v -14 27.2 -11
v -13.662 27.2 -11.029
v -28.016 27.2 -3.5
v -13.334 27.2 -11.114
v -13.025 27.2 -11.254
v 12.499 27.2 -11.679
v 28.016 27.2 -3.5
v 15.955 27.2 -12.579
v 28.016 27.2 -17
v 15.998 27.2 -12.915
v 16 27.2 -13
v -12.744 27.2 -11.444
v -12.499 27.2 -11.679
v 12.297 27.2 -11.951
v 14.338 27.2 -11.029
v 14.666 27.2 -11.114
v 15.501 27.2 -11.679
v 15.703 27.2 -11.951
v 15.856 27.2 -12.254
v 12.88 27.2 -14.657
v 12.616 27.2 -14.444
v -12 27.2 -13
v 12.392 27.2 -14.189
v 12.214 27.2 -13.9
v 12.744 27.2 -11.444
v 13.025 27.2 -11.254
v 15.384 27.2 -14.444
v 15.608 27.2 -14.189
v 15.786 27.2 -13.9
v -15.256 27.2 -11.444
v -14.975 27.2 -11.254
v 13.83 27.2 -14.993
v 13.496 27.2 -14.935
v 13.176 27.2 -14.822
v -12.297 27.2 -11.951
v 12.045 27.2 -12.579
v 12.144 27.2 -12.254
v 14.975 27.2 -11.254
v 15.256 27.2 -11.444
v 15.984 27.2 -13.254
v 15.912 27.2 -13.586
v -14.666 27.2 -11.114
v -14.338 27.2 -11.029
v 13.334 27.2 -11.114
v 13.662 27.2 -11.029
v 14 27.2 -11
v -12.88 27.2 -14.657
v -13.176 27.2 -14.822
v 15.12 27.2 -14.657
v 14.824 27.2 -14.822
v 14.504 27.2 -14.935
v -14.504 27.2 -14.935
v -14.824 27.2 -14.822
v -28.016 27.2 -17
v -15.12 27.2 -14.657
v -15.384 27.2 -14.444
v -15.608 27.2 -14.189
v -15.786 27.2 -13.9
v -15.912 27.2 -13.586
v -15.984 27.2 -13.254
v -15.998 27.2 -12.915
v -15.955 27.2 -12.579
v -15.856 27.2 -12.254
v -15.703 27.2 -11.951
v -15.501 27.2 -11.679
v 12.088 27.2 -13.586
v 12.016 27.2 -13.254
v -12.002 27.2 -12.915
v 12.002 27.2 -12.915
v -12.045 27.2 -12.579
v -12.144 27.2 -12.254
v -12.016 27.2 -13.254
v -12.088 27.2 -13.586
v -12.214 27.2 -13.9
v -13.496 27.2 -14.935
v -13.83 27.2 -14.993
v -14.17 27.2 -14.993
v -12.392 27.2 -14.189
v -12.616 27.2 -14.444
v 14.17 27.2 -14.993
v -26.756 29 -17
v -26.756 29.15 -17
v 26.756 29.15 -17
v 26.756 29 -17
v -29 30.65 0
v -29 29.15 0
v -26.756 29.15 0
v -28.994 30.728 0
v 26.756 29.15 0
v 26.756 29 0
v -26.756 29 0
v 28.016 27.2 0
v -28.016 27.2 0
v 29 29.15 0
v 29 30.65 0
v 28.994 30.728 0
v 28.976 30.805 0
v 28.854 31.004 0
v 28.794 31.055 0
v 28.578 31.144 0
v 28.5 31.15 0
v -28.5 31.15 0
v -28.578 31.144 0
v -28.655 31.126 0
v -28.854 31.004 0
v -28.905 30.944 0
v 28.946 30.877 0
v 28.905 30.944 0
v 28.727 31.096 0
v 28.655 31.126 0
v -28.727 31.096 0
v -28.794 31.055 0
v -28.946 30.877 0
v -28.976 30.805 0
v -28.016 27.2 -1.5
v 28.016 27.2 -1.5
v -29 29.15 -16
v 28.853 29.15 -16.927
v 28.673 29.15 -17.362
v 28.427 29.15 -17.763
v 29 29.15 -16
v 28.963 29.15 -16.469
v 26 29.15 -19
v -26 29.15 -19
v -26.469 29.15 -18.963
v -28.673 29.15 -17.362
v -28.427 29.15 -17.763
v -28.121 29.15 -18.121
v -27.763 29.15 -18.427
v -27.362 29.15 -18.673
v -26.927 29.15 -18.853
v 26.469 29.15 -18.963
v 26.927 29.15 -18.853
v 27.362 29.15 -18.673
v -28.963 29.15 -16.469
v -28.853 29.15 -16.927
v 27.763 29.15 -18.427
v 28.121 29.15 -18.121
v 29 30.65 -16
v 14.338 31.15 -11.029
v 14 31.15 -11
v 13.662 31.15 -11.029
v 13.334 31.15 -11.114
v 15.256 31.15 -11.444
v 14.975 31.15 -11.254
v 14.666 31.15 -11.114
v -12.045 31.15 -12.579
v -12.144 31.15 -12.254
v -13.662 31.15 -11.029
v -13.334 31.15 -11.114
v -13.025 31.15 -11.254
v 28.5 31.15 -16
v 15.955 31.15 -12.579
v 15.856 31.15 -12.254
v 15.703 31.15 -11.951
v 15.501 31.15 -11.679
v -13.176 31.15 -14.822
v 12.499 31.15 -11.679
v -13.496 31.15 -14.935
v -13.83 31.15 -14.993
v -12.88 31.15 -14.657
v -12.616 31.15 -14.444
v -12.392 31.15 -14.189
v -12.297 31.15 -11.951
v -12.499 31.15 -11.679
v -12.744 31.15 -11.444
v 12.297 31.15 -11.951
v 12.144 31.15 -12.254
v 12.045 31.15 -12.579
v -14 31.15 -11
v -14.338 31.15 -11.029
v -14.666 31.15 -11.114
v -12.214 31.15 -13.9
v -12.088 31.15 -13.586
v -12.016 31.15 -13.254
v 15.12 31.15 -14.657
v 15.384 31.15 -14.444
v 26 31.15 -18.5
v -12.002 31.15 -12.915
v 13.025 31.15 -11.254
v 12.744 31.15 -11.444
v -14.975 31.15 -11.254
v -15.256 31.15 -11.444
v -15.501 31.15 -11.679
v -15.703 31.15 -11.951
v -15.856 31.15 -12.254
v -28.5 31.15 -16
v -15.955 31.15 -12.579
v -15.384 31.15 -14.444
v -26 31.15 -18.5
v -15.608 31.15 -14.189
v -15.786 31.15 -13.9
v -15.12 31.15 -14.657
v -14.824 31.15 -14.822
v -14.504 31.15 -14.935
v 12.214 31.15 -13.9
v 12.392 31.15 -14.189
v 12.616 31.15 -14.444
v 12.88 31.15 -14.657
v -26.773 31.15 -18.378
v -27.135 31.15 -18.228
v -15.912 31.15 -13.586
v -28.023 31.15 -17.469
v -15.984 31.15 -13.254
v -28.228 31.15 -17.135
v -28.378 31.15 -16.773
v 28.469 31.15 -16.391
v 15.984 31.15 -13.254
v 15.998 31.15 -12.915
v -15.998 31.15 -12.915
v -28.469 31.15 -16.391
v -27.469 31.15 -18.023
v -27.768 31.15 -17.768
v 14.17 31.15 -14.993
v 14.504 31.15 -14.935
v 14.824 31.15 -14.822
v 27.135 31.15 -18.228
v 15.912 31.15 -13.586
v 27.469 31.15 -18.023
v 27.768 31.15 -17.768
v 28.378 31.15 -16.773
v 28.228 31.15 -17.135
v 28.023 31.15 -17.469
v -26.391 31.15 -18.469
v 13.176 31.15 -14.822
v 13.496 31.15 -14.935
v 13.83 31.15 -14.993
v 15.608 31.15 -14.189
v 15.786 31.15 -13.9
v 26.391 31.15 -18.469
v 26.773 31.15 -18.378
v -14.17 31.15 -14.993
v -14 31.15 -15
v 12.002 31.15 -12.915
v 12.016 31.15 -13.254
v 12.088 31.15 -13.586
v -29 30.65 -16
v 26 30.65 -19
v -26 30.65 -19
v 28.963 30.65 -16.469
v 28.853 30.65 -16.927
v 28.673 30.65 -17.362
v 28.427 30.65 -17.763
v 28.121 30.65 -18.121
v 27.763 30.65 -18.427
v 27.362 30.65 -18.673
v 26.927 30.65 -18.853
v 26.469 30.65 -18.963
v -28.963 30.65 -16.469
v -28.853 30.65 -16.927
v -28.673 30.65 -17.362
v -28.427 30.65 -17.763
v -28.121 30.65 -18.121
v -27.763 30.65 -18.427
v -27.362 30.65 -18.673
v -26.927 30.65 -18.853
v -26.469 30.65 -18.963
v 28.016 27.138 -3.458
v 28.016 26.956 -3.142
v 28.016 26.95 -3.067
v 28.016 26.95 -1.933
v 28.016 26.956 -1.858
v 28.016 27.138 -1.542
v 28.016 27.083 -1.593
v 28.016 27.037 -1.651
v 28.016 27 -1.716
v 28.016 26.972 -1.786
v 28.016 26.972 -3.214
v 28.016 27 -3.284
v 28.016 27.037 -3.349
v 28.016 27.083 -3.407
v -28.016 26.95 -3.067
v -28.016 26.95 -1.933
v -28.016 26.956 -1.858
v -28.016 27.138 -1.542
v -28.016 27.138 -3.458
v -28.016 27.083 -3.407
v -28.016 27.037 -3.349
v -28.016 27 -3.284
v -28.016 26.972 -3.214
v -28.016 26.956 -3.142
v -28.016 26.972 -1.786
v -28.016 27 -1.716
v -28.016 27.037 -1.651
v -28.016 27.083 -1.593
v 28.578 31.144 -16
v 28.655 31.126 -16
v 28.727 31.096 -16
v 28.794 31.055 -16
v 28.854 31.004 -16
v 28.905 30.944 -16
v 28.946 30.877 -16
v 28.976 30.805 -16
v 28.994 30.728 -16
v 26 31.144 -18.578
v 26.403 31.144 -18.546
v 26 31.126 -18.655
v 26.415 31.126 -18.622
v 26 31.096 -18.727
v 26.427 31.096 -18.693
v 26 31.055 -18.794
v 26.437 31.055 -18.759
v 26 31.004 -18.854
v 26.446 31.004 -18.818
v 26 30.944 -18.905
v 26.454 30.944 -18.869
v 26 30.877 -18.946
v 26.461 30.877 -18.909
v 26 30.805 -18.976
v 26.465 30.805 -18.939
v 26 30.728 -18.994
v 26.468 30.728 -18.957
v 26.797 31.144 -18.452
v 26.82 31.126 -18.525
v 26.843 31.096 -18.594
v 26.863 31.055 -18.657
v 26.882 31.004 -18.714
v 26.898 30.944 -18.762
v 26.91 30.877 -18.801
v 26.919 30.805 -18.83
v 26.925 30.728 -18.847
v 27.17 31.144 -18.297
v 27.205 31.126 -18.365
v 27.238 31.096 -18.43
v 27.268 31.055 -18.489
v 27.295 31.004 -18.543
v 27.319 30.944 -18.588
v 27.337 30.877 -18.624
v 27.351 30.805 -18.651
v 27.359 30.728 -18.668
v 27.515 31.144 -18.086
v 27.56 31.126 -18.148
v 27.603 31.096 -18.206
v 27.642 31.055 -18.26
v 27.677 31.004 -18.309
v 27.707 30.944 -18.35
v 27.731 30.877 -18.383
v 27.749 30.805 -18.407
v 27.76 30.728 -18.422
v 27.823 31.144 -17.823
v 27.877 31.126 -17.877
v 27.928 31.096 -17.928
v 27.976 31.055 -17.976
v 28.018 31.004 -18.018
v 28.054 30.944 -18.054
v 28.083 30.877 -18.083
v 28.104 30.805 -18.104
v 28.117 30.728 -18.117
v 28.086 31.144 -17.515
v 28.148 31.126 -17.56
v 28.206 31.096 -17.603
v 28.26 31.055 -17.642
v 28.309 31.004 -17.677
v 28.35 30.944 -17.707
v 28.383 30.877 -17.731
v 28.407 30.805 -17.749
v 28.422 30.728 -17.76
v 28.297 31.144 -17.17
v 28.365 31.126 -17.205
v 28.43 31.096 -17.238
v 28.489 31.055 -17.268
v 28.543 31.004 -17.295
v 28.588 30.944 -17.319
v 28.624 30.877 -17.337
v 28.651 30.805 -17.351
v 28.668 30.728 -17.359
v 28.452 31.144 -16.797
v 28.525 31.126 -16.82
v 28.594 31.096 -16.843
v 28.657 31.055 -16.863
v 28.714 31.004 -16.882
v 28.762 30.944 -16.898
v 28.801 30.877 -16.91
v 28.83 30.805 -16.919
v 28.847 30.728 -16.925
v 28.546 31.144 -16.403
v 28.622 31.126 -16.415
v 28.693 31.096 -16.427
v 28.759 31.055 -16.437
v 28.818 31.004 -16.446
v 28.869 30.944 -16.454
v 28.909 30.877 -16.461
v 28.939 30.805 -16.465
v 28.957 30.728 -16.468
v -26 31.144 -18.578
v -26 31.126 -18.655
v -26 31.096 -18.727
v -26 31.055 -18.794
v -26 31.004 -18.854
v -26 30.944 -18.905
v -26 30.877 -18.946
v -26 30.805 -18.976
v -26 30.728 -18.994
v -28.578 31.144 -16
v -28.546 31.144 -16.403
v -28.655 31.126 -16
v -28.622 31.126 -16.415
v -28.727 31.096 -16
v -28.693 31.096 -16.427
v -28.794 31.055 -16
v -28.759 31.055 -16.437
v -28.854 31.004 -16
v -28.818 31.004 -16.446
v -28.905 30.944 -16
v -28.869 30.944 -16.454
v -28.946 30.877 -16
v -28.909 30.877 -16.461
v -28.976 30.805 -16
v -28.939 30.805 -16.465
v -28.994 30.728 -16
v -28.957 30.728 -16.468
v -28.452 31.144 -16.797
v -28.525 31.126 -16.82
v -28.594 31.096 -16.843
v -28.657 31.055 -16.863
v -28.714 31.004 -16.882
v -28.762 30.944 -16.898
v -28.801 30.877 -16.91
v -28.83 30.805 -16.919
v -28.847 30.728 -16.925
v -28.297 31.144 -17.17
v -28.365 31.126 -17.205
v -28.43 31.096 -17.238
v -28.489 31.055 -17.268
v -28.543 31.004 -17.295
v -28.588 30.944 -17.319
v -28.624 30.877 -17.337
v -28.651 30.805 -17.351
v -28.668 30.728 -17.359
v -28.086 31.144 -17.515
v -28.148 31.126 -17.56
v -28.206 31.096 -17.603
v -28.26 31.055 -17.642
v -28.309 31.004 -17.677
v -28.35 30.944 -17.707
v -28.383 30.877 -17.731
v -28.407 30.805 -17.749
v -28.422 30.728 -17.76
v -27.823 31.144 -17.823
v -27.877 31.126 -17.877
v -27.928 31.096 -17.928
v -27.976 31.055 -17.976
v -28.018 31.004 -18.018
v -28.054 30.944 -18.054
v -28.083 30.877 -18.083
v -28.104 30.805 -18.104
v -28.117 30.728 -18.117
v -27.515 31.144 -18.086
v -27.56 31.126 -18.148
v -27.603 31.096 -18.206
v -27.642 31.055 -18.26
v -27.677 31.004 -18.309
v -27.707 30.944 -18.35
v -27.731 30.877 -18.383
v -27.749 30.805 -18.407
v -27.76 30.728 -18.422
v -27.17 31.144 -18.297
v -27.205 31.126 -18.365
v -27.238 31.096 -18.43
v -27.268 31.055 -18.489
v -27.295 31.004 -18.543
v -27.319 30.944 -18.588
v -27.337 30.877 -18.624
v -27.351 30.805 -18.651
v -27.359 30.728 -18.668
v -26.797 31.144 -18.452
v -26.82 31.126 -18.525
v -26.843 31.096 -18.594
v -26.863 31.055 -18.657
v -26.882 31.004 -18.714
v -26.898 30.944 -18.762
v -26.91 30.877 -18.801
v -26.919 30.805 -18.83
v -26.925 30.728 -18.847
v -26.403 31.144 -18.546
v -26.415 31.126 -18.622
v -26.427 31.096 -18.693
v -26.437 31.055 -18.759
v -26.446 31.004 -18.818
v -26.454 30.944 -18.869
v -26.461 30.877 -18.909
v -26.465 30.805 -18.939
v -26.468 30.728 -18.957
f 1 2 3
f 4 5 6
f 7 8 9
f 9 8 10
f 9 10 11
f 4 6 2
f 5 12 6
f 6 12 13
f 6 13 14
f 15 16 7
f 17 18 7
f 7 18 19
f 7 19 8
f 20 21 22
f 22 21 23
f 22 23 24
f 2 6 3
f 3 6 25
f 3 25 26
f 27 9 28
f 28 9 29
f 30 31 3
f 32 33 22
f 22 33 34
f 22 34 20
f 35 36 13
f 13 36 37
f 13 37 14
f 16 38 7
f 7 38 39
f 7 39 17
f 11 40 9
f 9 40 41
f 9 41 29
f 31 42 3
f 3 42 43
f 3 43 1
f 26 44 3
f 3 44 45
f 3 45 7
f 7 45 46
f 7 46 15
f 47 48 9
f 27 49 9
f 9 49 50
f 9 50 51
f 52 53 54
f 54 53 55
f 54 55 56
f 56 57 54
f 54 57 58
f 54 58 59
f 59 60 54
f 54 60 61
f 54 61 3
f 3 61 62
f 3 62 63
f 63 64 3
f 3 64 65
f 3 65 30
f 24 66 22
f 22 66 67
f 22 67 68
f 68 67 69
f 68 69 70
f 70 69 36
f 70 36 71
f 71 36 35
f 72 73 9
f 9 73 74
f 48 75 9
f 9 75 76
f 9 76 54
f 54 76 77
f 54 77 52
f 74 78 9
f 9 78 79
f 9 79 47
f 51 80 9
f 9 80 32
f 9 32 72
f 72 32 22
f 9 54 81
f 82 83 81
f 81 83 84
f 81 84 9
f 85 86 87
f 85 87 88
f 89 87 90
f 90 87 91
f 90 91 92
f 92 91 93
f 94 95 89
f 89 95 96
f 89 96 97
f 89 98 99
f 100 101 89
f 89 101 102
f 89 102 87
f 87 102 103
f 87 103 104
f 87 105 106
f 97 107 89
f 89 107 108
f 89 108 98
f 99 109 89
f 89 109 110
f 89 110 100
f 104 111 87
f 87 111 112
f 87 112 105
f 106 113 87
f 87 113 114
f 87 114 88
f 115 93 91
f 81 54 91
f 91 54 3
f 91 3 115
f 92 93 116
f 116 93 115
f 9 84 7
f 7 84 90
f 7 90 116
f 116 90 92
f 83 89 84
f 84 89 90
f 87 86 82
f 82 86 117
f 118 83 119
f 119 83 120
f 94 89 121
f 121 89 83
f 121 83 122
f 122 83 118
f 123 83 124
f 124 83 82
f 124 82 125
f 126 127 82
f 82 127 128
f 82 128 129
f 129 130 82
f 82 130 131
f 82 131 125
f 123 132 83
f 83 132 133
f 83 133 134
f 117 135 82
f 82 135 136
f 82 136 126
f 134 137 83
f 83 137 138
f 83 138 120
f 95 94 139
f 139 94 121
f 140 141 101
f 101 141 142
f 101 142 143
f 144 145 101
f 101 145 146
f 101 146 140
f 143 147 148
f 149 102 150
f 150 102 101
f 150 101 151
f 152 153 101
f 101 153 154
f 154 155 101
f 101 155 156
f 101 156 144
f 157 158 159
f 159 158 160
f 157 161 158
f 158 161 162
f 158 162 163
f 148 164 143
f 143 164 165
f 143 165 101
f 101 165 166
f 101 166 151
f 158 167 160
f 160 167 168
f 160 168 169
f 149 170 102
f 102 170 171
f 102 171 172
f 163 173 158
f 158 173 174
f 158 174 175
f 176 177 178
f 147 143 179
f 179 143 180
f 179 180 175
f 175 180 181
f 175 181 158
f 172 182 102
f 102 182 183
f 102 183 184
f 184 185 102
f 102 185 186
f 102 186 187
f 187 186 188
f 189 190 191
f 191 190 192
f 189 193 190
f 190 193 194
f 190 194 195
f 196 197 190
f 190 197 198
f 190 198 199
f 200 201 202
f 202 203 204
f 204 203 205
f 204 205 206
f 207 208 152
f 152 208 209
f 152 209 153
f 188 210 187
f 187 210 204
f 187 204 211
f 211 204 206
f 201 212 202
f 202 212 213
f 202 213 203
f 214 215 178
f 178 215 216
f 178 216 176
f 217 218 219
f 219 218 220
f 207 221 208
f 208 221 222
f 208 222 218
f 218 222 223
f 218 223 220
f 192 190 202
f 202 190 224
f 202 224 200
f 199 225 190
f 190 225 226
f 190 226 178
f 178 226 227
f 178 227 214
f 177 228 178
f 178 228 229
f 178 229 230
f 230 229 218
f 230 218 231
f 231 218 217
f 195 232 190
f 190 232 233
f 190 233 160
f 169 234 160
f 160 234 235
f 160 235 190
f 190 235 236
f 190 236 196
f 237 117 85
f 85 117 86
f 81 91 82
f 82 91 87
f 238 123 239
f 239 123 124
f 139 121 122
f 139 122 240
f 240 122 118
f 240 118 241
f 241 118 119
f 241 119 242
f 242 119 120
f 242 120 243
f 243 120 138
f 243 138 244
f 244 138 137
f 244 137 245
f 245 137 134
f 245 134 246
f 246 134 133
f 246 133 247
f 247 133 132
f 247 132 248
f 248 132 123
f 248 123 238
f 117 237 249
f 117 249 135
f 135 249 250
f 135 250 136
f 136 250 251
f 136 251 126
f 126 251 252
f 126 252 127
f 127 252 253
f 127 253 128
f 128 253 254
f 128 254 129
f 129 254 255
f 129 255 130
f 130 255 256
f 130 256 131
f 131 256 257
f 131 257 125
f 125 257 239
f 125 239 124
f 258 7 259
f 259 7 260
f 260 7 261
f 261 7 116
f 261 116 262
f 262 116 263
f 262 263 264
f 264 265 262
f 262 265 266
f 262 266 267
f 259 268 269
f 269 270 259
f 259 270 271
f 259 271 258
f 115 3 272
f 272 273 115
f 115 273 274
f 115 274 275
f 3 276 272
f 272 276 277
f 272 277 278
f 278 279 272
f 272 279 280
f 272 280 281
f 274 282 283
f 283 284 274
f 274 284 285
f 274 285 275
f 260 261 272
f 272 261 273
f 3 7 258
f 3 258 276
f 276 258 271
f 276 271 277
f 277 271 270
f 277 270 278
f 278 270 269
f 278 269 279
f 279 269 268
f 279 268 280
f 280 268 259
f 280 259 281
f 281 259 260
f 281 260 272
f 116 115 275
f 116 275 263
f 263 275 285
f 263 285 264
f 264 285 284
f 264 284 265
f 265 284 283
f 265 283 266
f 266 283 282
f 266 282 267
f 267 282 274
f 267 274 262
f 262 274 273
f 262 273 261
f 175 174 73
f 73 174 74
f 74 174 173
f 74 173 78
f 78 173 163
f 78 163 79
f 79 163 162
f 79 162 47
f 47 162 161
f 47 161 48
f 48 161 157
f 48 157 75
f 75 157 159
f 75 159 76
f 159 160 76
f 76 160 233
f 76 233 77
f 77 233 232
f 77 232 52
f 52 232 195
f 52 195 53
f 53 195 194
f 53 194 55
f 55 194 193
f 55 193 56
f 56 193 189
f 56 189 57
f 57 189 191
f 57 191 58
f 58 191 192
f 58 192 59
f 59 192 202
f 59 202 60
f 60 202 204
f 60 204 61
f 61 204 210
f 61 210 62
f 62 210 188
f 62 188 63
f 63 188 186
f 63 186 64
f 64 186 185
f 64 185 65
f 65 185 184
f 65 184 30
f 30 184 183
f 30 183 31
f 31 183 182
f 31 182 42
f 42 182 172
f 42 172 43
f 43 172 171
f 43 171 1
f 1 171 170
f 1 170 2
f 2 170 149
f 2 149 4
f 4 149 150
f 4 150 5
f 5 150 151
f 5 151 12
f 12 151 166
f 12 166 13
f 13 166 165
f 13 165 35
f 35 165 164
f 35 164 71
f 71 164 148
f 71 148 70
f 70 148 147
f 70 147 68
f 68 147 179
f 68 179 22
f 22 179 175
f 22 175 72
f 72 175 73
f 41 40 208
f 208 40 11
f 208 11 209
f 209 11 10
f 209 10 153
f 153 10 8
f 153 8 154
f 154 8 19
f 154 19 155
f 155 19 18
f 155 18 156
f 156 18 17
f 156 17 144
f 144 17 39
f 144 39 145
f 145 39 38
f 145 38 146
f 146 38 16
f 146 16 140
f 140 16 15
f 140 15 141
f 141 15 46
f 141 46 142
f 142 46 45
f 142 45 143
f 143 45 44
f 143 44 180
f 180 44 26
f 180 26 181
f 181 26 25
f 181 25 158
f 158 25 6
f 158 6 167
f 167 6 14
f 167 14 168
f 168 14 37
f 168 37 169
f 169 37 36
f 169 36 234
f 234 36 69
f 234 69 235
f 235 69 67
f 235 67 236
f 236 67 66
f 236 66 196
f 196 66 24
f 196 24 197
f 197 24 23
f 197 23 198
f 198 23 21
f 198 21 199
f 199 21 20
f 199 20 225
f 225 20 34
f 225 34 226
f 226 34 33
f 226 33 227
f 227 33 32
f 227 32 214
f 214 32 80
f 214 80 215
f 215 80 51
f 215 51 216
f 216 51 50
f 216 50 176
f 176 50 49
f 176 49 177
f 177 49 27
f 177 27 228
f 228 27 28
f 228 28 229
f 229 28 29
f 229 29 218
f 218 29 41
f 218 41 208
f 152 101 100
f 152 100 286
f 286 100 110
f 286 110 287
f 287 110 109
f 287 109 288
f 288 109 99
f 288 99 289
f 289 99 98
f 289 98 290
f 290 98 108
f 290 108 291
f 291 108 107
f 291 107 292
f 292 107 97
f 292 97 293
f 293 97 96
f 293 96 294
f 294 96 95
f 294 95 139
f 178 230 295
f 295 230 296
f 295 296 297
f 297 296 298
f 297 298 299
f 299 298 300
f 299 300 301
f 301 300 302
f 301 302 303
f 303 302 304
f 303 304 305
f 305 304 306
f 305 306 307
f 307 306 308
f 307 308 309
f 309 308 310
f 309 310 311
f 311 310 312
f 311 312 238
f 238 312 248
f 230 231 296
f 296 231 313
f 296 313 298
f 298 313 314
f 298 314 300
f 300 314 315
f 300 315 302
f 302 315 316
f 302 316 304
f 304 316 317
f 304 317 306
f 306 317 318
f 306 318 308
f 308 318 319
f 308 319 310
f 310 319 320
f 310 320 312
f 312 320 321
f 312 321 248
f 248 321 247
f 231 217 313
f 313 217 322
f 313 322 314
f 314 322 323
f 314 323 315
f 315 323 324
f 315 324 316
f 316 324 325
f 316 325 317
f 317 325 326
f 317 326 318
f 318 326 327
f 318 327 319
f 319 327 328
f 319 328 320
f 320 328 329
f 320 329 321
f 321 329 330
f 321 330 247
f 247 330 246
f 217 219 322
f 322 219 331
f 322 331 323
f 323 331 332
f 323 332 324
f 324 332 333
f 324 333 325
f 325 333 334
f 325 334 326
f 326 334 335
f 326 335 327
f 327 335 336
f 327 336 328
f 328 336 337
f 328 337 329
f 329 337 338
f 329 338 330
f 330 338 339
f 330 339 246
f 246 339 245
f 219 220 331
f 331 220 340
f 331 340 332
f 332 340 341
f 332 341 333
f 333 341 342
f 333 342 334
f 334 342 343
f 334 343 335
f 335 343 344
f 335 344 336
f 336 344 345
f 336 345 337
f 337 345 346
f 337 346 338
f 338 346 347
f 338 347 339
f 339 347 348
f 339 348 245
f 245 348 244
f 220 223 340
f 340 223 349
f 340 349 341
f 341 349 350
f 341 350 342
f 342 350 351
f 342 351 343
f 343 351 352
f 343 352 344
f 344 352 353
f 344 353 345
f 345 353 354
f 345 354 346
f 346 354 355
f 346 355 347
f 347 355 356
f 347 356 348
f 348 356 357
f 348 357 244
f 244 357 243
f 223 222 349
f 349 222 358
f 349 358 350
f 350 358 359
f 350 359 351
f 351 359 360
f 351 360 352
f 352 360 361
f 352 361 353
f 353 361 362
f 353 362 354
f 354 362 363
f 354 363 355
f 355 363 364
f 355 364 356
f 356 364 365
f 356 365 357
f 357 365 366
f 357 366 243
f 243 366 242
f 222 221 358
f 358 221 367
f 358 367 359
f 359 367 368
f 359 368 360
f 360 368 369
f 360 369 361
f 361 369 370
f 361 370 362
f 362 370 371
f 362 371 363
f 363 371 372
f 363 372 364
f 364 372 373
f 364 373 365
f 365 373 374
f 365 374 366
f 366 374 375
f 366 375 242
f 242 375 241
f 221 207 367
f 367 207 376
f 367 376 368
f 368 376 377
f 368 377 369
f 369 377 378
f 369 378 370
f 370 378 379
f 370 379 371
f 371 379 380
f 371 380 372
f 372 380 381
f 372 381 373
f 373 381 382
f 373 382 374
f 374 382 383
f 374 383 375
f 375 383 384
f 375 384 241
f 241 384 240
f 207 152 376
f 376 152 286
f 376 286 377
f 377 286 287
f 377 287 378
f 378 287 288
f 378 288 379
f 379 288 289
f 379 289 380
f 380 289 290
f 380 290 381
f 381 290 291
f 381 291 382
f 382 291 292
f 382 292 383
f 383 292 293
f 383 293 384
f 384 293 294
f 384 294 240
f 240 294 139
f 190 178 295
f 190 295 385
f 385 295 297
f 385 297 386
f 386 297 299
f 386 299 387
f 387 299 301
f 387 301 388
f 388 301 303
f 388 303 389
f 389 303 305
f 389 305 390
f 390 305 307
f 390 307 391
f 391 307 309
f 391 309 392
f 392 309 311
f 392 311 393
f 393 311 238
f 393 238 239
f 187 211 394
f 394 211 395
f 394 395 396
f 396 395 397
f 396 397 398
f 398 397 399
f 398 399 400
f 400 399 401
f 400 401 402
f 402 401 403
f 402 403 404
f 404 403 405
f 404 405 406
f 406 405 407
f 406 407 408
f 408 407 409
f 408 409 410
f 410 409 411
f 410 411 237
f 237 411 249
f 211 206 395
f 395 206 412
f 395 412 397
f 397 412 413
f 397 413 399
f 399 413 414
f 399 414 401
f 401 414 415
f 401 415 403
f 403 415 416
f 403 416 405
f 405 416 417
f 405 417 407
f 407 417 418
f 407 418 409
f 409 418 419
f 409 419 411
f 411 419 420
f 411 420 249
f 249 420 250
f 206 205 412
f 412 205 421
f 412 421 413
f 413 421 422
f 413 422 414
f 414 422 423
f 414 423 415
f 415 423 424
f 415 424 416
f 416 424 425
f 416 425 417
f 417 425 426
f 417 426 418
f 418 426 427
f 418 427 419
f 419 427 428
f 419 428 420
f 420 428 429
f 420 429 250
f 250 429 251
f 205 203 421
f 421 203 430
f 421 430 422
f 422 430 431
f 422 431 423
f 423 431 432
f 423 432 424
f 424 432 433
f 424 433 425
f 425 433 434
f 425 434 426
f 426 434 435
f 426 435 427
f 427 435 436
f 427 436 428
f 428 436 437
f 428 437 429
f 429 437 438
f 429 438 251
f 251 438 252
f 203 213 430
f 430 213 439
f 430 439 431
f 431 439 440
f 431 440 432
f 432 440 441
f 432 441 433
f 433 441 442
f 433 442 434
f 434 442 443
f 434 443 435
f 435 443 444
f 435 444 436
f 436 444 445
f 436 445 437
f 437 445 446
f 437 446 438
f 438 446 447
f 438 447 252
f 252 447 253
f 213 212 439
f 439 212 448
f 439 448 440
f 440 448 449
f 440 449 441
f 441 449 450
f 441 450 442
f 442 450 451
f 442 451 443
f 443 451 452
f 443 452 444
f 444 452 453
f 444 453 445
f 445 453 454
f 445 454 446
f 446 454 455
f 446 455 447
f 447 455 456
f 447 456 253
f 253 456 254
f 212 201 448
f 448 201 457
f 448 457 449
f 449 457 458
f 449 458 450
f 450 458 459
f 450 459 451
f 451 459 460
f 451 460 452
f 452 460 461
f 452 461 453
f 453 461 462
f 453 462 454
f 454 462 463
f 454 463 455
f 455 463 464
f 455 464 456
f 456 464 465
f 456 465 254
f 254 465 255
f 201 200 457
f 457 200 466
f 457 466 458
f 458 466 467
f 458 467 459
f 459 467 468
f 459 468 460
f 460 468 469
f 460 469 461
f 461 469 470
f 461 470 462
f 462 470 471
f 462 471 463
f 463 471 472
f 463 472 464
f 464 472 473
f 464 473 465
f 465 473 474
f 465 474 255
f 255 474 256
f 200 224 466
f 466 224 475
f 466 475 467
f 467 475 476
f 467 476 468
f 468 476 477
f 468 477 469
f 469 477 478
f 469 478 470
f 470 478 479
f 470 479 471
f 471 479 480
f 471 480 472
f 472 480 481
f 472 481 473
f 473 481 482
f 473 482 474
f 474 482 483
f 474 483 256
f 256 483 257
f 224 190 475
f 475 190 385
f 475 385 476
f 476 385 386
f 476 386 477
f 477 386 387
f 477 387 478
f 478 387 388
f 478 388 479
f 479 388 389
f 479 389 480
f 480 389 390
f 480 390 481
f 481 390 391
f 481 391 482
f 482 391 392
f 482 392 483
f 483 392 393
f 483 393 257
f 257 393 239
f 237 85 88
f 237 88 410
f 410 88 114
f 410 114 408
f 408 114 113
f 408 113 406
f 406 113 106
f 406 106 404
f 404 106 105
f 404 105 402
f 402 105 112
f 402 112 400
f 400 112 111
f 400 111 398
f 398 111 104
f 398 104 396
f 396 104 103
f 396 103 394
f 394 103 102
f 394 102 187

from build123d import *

# Parameters (mm, degrees)
BOSS_EXTRUDE1_DEPTH = 17
SKETCH3_W           = 58
SKETCH3_H           = 2
BOSS_EXTRUDE2_DEPTH = 2
FILLET1_R           = 3
SKETCH4_W           = 56.032437302
SKETCH4_H           = 2
BOSS_EXTRUDE3_DEPTH = 0.25
FILLET2_R           = 0.5
CUT_EXTRUDE2_REACH  = 36.923
SKETCH7_R           = 2
FILLET3_R           = 0.5


with BuildPart() as part:
    # Sketch1 → Boss-Extrude1 (new body)
    with BuildSketch(Plane.XY):
        Polygon((-26.755845082, 29), (-28.016218651, 27.2), (28.016218651, 27.2), (26.755845082, 29), (26.755845082, 29.15), (29, 29.15), (29, 31.15), (-29, 31.15), (-29, 29.15), (-26.755845082, 29.15), align=None)
    extrude(amount=-BOSS_EXTRUDE1_DEPTH)

    # Sketch3 → Boss-Extrude2 (add)
    with BuildSketch(Plane(origin=(0, 0, -17), x_dir=(-1, 0, 0), z_dir=(0, 0, -1))):
        with Locations((0, 30.15)):
            Rectangle(SKETCH3_W, SKETCH3_H)
    extrude(amount=BOSS_EXTRUDE2_DEPTH)

    # Fillet1
    fillet1_edges = [part.edges().sort_by_distance(p)[0] for p in [
        (29, 30.15, -19),
        (-29, 30.15, -19),
    ]]
    fillet(fillet1_edges, radius=FILLET1_R)

    # Sketch4 → Boss-Extrude3 (add)
    with BuildSketch(Plane.XZ.offset(-27.2)):
        with Locations((0, -2.5)):
            Rectangle(SKETCH4_W, SKETCH4_H)
    extrude(amount=BOSS_EXTRUDE3_DEPTH)

    # Fillet2
    # the kernel refuses this fillet: 0.5 mm, written as the material it takes off along each edge
    with BuildSketch(Plane(origin=(-29.098750406, 26.95, -3.5), x_dir=(0, 1, 0), z_dir=(1, 0, 0)), Plane(origin=(29.098750406, 26.95, -1.5), x_dir=(0, 1, 0), z_dir=(-1, 0, 0))) as fillet2_piece_1:
        with BuildLine():
            CenterArc((0.5, 0.433012702), FILLET2_R, 180, 60)
            Line((0, 0.433012702), (-0.01, 0.433012702))
            Line((-0.01, 0.433012702), (-0.01, 0))
            Line((-0.01, 0), (0, -0.01))
            ThreePointArc((0, -0.01), (0.125, -0.01), (0.245, -0.008660254))
            Line((0.245, -0.008660254), (0.25, 0))
        make_face()
    extrude(amount=58.197500812, mode=Mode.SUBTRACT)

    # Sketch7 → Cut-Extrude2 (cut, up to next)
    with BuildSketch(Plane(origin=(0, 31.15, 0), x_dir=(1, 0, 0), z_dir=(0, 1, 0)), mode=Mode.PRIVATE) as cut_extrude2_sk1:
        with Locations(Location((14, 13, 0), (0, 0, 270))):
            Circle(SKETCH7_R)
    cut_extrude2_tool1 = extrude(cut_extrude2_sk1.sketch, amount=-CUT_EXTRUDE2_REACH, mode=Mode.PRIVATE) & part.part
    # Sketch7 → Cut-Extrude2 (cut, up to next)
    with BuildSketch(Plane(origin=(0, 31.15, 0), x_dir=(1, 0, 0), z_dir=(0, 1, 0)), mode=Mode.PRIVATE) as cut_extrude2_sk2:
        with Locations((-14, 13)):
            Circle(SKETCH7_R)
    cut_extrude2_tool2 = extrude(cut_extrude2_sk2.sketch, amount=-CUT_EXTRUDE2_REACH, mode=Mode.PRIVATE) & part.part
    add(cut_extrude2_tool1.solids().sort_by_distance((14, 31.15, -13))[0], mode=Mode.SUBTRACT)
    add(cut_extrude2_tool2.solids().sort_by_distance((-14, 31.15, -13))[0], mode=Mode.SUBTRACT)

    # Fillet3
    fillet3_edges = [part.edges().sort_by_distance(p)[0] for p in [
        (0, 31.15, -19),
        (29, 31.15, -8),
        (-29, 31.15, -8),
        (-28.121320344, 31.15, -18.121320344),
        (28.121320344, 31.15, -18.121320344),
    ]]
    fillet(fillet3_edges, radius=FILLET3_R)


solid = part.part
